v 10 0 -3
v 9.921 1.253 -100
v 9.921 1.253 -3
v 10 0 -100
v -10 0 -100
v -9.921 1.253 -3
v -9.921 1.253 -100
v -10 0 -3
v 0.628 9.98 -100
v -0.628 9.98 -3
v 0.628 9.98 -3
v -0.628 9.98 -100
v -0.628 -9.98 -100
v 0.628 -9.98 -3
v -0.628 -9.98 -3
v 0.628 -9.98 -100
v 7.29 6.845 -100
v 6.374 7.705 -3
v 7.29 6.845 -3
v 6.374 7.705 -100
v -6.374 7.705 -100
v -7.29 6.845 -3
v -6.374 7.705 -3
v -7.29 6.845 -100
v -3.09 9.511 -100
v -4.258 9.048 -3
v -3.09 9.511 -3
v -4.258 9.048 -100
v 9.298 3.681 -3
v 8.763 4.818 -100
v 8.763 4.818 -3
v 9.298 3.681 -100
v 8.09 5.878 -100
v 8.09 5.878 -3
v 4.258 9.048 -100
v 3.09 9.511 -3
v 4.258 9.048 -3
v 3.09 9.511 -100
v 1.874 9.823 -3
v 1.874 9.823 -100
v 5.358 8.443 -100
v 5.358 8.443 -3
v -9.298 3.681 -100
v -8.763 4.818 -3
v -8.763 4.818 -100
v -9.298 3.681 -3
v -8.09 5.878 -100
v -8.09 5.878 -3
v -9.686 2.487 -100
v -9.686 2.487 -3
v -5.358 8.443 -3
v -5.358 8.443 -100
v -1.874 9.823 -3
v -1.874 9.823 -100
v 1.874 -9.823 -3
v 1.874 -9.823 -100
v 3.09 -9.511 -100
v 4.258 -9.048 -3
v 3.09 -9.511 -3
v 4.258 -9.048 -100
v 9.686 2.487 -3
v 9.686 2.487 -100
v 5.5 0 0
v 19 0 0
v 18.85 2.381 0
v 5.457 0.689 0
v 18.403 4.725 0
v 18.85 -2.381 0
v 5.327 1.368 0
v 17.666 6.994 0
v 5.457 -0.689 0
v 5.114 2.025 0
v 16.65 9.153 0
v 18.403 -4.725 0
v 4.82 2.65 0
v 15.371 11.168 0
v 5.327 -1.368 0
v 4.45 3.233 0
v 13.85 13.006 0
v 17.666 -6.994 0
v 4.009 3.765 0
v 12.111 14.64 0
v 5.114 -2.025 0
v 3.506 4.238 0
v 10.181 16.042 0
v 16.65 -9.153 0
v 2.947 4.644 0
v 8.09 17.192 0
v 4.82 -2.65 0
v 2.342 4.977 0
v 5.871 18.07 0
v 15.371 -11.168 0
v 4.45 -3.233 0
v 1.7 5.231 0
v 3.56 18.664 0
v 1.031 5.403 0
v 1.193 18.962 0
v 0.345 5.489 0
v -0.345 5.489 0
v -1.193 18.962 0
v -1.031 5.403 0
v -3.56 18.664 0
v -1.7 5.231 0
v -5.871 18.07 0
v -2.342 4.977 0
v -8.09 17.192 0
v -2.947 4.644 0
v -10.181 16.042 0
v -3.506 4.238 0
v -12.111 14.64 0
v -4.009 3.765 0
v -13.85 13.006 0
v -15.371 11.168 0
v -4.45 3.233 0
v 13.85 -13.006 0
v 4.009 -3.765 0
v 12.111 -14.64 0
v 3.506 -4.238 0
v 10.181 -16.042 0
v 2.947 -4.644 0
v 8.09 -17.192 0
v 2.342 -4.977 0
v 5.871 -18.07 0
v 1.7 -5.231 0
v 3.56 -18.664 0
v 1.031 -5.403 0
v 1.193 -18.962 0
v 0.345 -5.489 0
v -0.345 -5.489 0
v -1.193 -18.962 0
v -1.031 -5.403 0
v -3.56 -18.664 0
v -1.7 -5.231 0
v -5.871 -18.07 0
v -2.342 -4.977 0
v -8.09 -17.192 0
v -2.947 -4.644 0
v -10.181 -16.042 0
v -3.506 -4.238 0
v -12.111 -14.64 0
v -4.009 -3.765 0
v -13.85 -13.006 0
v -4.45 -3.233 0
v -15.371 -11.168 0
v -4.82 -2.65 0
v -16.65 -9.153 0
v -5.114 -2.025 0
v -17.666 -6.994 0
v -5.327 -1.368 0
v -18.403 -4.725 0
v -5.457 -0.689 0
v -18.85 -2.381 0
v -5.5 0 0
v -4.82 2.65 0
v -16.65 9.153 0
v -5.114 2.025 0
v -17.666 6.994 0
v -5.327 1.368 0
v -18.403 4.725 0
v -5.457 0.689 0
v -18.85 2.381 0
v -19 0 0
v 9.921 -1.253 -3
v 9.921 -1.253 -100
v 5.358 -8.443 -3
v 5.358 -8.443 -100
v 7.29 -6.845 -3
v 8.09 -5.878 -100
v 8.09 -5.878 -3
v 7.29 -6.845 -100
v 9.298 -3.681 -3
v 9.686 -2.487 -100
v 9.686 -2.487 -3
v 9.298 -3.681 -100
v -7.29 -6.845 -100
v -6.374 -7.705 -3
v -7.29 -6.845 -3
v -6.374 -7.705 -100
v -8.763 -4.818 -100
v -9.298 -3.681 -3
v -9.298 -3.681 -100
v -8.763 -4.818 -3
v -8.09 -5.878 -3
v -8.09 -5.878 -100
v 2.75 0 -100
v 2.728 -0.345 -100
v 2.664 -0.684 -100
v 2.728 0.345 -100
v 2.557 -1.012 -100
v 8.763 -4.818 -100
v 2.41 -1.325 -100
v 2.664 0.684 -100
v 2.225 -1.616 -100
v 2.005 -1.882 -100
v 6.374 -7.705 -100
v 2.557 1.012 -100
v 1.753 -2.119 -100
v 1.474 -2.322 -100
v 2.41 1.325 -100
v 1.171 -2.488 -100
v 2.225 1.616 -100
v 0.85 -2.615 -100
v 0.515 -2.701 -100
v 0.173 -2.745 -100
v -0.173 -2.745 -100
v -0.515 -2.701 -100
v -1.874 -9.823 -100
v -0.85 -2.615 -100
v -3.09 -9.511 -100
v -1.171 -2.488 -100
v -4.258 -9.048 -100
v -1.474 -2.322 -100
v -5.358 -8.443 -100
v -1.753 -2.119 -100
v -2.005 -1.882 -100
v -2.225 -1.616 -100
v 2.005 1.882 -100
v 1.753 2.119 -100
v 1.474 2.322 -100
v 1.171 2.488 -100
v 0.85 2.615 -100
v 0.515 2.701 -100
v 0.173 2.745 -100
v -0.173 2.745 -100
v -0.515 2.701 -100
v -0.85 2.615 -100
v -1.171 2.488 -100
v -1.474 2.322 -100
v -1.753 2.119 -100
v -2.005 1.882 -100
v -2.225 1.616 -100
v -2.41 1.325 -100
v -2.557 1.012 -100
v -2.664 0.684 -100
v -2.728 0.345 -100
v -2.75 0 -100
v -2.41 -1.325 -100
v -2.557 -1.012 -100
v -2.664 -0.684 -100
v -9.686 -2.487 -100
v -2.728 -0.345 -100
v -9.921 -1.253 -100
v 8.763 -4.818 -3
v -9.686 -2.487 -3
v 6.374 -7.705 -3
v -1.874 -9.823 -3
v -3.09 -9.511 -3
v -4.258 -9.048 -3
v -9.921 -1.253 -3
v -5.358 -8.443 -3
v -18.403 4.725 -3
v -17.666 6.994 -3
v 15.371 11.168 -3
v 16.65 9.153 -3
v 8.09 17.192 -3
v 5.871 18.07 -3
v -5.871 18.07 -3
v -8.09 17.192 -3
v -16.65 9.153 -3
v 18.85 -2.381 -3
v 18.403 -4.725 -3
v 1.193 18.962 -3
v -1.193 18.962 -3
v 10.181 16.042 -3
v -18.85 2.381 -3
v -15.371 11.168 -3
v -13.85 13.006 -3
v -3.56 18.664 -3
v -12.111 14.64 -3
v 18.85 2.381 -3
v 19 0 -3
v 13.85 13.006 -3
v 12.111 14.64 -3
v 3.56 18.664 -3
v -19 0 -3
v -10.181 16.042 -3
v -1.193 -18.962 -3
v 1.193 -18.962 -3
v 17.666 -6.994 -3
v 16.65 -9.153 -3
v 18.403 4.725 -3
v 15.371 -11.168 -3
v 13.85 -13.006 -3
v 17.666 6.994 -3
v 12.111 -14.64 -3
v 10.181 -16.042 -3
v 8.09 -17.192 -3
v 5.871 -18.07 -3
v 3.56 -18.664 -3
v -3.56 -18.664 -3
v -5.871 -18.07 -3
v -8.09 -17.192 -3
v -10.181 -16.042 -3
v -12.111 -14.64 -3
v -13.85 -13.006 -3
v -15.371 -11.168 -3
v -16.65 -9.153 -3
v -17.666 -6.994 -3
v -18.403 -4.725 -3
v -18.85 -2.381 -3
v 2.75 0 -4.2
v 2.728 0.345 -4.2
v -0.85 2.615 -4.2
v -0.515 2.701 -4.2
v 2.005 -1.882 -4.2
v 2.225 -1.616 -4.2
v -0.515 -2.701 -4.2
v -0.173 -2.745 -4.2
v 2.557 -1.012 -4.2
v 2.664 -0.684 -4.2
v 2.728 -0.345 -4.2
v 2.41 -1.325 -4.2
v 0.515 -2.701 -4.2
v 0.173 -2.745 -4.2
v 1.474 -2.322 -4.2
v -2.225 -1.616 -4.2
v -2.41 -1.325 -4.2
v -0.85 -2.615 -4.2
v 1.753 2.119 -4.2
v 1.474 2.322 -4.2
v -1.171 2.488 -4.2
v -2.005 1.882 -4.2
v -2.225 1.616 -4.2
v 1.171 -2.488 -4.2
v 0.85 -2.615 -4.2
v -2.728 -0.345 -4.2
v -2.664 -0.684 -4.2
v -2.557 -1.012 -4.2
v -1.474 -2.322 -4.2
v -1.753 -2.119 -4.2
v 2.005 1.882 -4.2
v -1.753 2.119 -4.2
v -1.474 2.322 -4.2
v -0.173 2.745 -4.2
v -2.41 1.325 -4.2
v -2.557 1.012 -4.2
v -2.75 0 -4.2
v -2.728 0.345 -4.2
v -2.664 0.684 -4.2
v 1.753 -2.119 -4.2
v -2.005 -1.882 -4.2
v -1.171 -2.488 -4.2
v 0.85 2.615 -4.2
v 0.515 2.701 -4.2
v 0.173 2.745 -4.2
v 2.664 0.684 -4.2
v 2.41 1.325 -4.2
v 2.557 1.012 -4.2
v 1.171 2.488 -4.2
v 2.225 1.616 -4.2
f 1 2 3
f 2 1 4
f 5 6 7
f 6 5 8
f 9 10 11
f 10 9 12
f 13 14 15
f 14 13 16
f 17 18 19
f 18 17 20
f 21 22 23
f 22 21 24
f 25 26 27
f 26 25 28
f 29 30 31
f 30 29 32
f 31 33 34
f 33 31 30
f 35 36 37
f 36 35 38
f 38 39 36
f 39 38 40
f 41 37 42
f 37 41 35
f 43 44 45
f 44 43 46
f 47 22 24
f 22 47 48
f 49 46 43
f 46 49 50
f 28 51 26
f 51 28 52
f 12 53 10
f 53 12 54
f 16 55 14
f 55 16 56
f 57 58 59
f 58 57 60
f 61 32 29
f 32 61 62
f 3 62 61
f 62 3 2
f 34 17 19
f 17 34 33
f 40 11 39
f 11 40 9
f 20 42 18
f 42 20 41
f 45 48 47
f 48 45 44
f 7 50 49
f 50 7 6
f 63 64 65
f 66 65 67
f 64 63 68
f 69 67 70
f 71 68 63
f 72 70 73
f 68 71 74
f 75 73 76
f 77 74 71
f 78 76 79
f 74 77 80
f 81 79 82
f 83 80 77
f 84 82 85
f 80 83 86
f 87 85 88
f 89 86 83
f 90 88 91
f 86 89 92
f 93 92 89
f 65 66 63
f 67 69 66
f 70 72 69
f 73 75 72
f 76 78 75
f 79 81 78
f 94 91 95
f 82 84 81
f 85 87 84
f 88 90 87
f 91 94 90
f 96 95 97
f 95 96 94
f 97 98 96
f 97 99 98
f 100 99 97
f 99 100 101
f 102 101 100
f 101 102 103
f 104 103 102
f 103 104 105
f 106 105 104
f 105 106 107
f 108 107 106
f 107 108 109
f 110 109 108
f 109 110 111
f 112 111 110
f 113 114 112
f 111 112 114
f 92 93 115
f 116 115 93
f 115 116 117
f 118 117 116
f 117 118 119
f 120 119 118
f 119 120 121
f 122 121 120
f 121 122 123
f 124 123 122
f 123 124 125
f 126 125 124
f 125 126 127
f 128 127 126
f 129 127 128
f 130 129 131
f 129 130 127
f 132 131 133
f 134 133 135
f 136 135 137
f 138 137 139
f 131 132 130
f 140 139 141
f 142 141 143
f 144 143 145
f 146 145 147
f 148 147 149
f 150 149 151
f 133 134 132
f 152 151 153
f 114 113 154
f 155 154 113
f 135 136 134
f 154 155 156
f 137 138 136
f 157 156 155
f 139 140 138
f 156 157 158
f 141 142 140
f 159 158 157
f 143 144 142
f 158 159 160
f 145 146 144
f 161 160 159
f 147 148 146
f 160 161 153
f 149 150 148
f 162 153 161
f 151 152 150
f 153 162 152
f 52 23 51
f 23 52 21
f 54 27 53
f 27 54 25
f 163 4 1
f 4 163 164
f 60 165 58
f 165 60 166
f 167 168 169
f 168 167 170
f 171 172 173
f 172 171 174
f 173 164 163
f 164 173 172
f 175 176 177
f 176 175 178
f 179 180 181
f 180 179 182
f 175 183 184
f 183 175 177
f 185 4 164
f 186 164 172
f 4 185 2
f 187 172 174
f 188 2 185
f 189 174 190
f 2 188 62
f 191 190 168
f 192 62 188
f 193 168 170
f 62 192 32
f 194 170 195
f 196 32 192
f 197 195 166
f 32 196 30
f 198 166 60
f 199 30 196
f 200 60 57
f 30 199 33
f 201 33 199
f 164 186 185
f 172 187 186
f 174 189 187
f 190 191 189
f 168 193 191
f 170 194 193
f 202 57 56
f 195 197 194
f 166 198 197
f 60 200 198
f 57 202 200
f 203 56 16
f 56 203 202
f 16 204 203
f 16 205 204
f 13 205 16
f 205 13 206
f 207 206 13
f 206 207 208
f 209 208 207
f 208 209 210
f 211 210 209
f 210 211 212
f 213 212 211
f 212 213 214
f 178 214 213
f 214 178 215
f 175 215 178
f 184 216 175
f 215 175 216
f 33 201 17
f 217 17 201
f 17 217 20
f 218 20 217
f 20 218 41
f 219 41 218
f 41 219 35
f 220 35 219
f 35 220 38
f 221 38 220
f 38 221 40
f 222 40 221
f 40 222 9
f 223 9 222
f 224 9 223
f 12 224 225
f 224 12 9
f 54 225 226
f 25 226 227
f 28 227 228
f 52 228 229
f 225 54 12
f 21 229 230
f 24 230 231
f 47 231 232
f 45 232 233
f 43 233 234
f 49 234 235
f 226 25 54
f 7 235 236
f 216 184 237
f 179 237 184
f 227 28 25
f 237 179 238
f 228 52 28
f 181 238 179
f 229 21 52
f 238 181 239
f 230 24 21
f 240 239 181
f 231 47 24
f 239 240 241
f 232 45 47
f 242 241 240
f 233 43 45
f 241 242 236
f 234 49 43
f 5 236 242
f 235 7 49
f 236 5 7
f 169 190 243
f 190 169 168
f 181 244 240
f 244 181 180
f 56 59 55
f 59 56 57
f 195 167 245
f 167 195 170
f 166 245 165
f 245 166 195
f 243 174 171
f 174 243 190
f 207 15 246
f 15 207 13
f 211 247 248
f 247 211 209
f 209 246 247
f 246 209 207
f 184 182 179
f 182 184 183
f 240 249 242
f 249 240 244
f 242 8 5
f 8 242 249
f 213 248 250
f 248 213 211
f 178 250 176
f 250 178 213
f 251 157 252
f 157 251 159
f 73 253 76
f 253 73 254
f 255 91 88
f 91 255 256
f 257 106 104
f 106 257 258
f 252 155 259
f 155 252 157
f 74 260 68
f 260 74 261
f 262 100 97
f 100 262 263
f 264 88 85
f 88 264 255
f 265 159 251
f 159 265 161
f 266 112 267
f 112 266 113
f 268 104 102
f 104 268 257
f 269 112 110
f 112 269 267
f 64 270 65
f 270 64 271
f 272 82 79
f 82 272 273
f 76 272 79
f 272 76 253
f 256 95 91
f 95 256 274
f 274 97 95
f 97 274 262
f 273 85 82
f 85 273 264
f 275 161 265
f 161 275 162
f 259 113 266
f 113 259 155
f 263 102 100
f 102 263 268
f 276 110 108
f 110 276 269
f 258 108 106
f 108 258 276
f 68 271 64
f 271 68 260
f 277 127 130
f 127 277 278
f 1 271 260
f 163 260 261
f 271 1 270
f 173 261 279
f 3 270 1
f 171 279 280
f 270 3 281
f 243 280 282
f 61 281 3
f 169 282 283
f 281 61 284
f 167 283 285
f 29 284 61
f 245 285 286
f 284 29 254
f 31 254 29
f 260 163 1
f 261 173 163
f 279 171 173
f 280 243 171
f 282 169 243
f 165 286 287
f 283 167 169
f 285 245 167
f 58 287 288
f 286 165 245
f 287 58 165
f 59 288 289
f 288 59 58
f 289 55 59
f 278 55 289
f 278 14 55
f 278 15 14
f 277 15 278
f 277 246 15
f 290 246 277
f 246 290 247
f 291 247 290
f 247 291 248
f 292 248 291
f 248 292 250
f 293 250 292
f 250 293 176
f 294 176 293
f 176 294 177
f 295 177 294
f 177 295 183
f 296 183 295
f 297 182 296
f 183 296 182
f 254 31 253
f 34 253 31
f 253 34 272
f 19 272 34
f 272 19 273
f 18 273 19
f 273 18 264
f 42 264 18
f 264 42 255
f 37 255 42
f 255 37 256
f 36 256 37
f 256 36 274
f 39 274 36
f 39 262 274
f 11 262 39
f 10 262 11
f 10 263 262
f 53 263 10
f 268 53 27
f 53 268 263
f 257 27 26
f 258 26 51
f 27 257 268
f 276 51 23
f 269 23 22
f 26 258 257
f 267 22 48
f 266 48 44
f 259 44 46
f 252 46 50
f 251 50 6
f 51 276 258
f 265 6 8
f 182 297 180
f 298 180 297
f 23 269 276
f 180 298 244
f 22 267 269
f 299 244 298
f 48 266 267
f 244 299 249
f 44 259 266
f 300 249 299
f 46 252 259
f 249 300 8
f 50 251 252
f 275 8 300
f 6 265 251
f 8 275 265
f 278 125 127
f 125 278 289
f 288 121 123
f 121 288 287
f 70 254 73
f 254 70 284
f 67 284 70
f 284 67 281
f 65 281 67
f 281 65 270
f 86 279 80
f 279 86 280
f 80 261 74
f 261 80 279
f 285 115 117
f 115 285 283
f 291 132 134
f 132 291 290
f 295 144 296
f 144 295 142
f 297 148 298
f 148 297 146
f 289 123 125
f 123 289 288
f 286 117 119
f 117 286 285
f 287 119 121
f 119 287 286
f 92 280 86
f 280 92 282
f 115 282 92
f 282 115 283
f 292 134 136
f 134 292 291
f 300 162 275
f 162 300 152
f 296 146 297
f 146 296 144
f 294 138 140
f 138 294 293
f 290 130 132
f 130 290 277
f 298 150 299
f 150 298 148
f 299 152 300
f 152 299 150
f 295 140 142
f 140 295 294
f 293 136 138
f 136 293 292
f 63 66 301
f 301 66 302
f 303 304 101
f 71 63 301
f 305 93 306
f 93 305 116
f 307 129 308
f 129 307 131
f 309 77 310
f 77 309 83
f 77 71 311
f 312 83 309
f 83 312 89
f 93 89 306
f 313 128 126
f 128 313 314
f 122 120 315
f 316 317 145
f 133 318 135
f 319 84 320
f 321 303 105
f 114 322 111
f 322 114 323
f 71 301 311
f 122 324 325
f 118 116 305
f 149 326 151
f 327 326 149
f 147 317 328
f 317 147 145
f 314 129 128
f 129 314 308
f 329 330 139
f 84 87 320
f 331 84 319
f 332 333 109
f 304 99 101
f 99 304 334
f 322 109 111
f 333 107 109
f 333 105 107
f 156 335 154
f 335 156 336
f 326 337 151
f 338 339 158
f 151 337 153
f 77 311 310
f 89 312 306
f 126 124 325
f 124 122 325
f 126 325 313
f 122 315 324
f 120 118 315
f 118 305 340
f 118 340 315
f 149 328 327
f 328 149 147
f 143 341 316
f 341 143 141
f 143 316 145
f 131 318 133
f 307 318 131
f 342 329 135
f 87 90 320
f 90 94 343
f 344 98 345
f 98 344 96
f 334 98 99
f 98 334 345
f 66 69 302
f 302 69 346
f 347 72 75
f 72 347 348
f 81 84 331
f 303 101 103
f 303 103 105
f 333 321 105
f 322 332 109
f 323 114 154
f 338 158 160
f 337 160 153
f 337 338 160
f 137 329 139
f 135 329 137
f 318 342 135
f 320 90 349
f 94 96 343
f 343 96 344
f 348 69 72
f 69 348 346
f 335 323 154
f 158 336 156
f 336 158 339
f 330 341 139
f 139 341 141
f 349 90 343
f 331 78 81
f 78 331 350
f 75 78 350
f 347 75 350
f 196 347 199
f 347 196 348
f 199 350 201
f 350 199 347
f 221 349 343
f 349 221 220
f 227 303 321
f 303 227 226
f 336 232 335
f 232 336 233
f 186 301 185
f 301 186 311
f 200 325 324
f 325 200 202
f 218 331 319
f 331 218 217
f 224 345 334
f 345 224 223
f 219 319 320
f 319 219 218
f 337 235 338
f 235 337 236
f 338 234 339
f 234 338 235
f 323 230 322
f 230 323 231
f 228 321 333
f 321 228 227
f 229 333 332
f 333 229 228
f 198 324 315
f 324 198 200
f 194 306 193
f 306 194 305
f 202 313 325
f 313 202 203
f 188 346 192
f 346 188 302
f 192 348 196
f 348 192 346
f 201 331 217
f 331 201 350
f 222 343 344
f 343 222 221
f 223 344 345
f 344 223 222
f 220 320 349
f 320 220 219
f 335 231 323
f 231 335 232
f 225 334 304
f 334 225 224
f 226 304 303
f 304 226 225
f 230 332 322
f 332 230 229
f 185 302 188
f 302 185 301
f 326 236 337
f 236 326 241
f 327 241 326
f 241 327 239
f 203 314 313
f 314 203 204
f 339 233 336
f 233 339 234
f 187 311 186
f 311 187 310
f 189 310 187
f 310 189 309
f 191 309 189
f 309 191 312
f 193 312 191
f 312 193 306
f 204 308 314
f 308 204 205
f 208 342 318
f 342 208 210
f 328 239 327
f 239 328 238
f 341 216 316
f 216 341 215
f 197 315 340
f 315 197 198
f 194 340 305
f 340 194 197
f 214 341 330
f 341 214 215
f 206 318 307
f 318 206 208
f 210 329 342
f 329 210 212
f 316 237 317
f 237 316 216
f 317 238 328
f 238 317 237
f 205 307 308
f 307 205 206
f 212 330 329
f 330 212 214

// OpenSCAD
$fn = 50;


difference() {
	union() {
		translate(v = [0, 0, -100.0000000000]) {
			cylinder(h = 100, r = 10.0000000000);
		}
		translate(v = [0, 0, -3.0000000000]) {
			cylinder(h = 3, r = 19.0000000000);
		}
	}
	union() {
		translate(v = [0, 0, 0]) {
			rotate(a = [0, 0, 0]) {
				difference() {
					union() {
						#translate(v = [0, 0, -100.0000000000]) {
							cylinder(h = 100, r = 2.2500000000);
						}
						#translate(v = [0, 0, -4.2000000000]) {
							cylinder(h = 4.2000000000, r1 = 2.7500000000, r2 = 5.5000000000);
						}
						#translate(v = [0, 0, -100.0000000000]) {
							cylinder(h = 100, r = 2.7500000000);
						}
						#translate(v = [0, 0, -100.0000000000]) {
							cylinder(h = 100, r = 2.2500000000);
						}
					}
					union();
				}
			}
		}
	}
}
